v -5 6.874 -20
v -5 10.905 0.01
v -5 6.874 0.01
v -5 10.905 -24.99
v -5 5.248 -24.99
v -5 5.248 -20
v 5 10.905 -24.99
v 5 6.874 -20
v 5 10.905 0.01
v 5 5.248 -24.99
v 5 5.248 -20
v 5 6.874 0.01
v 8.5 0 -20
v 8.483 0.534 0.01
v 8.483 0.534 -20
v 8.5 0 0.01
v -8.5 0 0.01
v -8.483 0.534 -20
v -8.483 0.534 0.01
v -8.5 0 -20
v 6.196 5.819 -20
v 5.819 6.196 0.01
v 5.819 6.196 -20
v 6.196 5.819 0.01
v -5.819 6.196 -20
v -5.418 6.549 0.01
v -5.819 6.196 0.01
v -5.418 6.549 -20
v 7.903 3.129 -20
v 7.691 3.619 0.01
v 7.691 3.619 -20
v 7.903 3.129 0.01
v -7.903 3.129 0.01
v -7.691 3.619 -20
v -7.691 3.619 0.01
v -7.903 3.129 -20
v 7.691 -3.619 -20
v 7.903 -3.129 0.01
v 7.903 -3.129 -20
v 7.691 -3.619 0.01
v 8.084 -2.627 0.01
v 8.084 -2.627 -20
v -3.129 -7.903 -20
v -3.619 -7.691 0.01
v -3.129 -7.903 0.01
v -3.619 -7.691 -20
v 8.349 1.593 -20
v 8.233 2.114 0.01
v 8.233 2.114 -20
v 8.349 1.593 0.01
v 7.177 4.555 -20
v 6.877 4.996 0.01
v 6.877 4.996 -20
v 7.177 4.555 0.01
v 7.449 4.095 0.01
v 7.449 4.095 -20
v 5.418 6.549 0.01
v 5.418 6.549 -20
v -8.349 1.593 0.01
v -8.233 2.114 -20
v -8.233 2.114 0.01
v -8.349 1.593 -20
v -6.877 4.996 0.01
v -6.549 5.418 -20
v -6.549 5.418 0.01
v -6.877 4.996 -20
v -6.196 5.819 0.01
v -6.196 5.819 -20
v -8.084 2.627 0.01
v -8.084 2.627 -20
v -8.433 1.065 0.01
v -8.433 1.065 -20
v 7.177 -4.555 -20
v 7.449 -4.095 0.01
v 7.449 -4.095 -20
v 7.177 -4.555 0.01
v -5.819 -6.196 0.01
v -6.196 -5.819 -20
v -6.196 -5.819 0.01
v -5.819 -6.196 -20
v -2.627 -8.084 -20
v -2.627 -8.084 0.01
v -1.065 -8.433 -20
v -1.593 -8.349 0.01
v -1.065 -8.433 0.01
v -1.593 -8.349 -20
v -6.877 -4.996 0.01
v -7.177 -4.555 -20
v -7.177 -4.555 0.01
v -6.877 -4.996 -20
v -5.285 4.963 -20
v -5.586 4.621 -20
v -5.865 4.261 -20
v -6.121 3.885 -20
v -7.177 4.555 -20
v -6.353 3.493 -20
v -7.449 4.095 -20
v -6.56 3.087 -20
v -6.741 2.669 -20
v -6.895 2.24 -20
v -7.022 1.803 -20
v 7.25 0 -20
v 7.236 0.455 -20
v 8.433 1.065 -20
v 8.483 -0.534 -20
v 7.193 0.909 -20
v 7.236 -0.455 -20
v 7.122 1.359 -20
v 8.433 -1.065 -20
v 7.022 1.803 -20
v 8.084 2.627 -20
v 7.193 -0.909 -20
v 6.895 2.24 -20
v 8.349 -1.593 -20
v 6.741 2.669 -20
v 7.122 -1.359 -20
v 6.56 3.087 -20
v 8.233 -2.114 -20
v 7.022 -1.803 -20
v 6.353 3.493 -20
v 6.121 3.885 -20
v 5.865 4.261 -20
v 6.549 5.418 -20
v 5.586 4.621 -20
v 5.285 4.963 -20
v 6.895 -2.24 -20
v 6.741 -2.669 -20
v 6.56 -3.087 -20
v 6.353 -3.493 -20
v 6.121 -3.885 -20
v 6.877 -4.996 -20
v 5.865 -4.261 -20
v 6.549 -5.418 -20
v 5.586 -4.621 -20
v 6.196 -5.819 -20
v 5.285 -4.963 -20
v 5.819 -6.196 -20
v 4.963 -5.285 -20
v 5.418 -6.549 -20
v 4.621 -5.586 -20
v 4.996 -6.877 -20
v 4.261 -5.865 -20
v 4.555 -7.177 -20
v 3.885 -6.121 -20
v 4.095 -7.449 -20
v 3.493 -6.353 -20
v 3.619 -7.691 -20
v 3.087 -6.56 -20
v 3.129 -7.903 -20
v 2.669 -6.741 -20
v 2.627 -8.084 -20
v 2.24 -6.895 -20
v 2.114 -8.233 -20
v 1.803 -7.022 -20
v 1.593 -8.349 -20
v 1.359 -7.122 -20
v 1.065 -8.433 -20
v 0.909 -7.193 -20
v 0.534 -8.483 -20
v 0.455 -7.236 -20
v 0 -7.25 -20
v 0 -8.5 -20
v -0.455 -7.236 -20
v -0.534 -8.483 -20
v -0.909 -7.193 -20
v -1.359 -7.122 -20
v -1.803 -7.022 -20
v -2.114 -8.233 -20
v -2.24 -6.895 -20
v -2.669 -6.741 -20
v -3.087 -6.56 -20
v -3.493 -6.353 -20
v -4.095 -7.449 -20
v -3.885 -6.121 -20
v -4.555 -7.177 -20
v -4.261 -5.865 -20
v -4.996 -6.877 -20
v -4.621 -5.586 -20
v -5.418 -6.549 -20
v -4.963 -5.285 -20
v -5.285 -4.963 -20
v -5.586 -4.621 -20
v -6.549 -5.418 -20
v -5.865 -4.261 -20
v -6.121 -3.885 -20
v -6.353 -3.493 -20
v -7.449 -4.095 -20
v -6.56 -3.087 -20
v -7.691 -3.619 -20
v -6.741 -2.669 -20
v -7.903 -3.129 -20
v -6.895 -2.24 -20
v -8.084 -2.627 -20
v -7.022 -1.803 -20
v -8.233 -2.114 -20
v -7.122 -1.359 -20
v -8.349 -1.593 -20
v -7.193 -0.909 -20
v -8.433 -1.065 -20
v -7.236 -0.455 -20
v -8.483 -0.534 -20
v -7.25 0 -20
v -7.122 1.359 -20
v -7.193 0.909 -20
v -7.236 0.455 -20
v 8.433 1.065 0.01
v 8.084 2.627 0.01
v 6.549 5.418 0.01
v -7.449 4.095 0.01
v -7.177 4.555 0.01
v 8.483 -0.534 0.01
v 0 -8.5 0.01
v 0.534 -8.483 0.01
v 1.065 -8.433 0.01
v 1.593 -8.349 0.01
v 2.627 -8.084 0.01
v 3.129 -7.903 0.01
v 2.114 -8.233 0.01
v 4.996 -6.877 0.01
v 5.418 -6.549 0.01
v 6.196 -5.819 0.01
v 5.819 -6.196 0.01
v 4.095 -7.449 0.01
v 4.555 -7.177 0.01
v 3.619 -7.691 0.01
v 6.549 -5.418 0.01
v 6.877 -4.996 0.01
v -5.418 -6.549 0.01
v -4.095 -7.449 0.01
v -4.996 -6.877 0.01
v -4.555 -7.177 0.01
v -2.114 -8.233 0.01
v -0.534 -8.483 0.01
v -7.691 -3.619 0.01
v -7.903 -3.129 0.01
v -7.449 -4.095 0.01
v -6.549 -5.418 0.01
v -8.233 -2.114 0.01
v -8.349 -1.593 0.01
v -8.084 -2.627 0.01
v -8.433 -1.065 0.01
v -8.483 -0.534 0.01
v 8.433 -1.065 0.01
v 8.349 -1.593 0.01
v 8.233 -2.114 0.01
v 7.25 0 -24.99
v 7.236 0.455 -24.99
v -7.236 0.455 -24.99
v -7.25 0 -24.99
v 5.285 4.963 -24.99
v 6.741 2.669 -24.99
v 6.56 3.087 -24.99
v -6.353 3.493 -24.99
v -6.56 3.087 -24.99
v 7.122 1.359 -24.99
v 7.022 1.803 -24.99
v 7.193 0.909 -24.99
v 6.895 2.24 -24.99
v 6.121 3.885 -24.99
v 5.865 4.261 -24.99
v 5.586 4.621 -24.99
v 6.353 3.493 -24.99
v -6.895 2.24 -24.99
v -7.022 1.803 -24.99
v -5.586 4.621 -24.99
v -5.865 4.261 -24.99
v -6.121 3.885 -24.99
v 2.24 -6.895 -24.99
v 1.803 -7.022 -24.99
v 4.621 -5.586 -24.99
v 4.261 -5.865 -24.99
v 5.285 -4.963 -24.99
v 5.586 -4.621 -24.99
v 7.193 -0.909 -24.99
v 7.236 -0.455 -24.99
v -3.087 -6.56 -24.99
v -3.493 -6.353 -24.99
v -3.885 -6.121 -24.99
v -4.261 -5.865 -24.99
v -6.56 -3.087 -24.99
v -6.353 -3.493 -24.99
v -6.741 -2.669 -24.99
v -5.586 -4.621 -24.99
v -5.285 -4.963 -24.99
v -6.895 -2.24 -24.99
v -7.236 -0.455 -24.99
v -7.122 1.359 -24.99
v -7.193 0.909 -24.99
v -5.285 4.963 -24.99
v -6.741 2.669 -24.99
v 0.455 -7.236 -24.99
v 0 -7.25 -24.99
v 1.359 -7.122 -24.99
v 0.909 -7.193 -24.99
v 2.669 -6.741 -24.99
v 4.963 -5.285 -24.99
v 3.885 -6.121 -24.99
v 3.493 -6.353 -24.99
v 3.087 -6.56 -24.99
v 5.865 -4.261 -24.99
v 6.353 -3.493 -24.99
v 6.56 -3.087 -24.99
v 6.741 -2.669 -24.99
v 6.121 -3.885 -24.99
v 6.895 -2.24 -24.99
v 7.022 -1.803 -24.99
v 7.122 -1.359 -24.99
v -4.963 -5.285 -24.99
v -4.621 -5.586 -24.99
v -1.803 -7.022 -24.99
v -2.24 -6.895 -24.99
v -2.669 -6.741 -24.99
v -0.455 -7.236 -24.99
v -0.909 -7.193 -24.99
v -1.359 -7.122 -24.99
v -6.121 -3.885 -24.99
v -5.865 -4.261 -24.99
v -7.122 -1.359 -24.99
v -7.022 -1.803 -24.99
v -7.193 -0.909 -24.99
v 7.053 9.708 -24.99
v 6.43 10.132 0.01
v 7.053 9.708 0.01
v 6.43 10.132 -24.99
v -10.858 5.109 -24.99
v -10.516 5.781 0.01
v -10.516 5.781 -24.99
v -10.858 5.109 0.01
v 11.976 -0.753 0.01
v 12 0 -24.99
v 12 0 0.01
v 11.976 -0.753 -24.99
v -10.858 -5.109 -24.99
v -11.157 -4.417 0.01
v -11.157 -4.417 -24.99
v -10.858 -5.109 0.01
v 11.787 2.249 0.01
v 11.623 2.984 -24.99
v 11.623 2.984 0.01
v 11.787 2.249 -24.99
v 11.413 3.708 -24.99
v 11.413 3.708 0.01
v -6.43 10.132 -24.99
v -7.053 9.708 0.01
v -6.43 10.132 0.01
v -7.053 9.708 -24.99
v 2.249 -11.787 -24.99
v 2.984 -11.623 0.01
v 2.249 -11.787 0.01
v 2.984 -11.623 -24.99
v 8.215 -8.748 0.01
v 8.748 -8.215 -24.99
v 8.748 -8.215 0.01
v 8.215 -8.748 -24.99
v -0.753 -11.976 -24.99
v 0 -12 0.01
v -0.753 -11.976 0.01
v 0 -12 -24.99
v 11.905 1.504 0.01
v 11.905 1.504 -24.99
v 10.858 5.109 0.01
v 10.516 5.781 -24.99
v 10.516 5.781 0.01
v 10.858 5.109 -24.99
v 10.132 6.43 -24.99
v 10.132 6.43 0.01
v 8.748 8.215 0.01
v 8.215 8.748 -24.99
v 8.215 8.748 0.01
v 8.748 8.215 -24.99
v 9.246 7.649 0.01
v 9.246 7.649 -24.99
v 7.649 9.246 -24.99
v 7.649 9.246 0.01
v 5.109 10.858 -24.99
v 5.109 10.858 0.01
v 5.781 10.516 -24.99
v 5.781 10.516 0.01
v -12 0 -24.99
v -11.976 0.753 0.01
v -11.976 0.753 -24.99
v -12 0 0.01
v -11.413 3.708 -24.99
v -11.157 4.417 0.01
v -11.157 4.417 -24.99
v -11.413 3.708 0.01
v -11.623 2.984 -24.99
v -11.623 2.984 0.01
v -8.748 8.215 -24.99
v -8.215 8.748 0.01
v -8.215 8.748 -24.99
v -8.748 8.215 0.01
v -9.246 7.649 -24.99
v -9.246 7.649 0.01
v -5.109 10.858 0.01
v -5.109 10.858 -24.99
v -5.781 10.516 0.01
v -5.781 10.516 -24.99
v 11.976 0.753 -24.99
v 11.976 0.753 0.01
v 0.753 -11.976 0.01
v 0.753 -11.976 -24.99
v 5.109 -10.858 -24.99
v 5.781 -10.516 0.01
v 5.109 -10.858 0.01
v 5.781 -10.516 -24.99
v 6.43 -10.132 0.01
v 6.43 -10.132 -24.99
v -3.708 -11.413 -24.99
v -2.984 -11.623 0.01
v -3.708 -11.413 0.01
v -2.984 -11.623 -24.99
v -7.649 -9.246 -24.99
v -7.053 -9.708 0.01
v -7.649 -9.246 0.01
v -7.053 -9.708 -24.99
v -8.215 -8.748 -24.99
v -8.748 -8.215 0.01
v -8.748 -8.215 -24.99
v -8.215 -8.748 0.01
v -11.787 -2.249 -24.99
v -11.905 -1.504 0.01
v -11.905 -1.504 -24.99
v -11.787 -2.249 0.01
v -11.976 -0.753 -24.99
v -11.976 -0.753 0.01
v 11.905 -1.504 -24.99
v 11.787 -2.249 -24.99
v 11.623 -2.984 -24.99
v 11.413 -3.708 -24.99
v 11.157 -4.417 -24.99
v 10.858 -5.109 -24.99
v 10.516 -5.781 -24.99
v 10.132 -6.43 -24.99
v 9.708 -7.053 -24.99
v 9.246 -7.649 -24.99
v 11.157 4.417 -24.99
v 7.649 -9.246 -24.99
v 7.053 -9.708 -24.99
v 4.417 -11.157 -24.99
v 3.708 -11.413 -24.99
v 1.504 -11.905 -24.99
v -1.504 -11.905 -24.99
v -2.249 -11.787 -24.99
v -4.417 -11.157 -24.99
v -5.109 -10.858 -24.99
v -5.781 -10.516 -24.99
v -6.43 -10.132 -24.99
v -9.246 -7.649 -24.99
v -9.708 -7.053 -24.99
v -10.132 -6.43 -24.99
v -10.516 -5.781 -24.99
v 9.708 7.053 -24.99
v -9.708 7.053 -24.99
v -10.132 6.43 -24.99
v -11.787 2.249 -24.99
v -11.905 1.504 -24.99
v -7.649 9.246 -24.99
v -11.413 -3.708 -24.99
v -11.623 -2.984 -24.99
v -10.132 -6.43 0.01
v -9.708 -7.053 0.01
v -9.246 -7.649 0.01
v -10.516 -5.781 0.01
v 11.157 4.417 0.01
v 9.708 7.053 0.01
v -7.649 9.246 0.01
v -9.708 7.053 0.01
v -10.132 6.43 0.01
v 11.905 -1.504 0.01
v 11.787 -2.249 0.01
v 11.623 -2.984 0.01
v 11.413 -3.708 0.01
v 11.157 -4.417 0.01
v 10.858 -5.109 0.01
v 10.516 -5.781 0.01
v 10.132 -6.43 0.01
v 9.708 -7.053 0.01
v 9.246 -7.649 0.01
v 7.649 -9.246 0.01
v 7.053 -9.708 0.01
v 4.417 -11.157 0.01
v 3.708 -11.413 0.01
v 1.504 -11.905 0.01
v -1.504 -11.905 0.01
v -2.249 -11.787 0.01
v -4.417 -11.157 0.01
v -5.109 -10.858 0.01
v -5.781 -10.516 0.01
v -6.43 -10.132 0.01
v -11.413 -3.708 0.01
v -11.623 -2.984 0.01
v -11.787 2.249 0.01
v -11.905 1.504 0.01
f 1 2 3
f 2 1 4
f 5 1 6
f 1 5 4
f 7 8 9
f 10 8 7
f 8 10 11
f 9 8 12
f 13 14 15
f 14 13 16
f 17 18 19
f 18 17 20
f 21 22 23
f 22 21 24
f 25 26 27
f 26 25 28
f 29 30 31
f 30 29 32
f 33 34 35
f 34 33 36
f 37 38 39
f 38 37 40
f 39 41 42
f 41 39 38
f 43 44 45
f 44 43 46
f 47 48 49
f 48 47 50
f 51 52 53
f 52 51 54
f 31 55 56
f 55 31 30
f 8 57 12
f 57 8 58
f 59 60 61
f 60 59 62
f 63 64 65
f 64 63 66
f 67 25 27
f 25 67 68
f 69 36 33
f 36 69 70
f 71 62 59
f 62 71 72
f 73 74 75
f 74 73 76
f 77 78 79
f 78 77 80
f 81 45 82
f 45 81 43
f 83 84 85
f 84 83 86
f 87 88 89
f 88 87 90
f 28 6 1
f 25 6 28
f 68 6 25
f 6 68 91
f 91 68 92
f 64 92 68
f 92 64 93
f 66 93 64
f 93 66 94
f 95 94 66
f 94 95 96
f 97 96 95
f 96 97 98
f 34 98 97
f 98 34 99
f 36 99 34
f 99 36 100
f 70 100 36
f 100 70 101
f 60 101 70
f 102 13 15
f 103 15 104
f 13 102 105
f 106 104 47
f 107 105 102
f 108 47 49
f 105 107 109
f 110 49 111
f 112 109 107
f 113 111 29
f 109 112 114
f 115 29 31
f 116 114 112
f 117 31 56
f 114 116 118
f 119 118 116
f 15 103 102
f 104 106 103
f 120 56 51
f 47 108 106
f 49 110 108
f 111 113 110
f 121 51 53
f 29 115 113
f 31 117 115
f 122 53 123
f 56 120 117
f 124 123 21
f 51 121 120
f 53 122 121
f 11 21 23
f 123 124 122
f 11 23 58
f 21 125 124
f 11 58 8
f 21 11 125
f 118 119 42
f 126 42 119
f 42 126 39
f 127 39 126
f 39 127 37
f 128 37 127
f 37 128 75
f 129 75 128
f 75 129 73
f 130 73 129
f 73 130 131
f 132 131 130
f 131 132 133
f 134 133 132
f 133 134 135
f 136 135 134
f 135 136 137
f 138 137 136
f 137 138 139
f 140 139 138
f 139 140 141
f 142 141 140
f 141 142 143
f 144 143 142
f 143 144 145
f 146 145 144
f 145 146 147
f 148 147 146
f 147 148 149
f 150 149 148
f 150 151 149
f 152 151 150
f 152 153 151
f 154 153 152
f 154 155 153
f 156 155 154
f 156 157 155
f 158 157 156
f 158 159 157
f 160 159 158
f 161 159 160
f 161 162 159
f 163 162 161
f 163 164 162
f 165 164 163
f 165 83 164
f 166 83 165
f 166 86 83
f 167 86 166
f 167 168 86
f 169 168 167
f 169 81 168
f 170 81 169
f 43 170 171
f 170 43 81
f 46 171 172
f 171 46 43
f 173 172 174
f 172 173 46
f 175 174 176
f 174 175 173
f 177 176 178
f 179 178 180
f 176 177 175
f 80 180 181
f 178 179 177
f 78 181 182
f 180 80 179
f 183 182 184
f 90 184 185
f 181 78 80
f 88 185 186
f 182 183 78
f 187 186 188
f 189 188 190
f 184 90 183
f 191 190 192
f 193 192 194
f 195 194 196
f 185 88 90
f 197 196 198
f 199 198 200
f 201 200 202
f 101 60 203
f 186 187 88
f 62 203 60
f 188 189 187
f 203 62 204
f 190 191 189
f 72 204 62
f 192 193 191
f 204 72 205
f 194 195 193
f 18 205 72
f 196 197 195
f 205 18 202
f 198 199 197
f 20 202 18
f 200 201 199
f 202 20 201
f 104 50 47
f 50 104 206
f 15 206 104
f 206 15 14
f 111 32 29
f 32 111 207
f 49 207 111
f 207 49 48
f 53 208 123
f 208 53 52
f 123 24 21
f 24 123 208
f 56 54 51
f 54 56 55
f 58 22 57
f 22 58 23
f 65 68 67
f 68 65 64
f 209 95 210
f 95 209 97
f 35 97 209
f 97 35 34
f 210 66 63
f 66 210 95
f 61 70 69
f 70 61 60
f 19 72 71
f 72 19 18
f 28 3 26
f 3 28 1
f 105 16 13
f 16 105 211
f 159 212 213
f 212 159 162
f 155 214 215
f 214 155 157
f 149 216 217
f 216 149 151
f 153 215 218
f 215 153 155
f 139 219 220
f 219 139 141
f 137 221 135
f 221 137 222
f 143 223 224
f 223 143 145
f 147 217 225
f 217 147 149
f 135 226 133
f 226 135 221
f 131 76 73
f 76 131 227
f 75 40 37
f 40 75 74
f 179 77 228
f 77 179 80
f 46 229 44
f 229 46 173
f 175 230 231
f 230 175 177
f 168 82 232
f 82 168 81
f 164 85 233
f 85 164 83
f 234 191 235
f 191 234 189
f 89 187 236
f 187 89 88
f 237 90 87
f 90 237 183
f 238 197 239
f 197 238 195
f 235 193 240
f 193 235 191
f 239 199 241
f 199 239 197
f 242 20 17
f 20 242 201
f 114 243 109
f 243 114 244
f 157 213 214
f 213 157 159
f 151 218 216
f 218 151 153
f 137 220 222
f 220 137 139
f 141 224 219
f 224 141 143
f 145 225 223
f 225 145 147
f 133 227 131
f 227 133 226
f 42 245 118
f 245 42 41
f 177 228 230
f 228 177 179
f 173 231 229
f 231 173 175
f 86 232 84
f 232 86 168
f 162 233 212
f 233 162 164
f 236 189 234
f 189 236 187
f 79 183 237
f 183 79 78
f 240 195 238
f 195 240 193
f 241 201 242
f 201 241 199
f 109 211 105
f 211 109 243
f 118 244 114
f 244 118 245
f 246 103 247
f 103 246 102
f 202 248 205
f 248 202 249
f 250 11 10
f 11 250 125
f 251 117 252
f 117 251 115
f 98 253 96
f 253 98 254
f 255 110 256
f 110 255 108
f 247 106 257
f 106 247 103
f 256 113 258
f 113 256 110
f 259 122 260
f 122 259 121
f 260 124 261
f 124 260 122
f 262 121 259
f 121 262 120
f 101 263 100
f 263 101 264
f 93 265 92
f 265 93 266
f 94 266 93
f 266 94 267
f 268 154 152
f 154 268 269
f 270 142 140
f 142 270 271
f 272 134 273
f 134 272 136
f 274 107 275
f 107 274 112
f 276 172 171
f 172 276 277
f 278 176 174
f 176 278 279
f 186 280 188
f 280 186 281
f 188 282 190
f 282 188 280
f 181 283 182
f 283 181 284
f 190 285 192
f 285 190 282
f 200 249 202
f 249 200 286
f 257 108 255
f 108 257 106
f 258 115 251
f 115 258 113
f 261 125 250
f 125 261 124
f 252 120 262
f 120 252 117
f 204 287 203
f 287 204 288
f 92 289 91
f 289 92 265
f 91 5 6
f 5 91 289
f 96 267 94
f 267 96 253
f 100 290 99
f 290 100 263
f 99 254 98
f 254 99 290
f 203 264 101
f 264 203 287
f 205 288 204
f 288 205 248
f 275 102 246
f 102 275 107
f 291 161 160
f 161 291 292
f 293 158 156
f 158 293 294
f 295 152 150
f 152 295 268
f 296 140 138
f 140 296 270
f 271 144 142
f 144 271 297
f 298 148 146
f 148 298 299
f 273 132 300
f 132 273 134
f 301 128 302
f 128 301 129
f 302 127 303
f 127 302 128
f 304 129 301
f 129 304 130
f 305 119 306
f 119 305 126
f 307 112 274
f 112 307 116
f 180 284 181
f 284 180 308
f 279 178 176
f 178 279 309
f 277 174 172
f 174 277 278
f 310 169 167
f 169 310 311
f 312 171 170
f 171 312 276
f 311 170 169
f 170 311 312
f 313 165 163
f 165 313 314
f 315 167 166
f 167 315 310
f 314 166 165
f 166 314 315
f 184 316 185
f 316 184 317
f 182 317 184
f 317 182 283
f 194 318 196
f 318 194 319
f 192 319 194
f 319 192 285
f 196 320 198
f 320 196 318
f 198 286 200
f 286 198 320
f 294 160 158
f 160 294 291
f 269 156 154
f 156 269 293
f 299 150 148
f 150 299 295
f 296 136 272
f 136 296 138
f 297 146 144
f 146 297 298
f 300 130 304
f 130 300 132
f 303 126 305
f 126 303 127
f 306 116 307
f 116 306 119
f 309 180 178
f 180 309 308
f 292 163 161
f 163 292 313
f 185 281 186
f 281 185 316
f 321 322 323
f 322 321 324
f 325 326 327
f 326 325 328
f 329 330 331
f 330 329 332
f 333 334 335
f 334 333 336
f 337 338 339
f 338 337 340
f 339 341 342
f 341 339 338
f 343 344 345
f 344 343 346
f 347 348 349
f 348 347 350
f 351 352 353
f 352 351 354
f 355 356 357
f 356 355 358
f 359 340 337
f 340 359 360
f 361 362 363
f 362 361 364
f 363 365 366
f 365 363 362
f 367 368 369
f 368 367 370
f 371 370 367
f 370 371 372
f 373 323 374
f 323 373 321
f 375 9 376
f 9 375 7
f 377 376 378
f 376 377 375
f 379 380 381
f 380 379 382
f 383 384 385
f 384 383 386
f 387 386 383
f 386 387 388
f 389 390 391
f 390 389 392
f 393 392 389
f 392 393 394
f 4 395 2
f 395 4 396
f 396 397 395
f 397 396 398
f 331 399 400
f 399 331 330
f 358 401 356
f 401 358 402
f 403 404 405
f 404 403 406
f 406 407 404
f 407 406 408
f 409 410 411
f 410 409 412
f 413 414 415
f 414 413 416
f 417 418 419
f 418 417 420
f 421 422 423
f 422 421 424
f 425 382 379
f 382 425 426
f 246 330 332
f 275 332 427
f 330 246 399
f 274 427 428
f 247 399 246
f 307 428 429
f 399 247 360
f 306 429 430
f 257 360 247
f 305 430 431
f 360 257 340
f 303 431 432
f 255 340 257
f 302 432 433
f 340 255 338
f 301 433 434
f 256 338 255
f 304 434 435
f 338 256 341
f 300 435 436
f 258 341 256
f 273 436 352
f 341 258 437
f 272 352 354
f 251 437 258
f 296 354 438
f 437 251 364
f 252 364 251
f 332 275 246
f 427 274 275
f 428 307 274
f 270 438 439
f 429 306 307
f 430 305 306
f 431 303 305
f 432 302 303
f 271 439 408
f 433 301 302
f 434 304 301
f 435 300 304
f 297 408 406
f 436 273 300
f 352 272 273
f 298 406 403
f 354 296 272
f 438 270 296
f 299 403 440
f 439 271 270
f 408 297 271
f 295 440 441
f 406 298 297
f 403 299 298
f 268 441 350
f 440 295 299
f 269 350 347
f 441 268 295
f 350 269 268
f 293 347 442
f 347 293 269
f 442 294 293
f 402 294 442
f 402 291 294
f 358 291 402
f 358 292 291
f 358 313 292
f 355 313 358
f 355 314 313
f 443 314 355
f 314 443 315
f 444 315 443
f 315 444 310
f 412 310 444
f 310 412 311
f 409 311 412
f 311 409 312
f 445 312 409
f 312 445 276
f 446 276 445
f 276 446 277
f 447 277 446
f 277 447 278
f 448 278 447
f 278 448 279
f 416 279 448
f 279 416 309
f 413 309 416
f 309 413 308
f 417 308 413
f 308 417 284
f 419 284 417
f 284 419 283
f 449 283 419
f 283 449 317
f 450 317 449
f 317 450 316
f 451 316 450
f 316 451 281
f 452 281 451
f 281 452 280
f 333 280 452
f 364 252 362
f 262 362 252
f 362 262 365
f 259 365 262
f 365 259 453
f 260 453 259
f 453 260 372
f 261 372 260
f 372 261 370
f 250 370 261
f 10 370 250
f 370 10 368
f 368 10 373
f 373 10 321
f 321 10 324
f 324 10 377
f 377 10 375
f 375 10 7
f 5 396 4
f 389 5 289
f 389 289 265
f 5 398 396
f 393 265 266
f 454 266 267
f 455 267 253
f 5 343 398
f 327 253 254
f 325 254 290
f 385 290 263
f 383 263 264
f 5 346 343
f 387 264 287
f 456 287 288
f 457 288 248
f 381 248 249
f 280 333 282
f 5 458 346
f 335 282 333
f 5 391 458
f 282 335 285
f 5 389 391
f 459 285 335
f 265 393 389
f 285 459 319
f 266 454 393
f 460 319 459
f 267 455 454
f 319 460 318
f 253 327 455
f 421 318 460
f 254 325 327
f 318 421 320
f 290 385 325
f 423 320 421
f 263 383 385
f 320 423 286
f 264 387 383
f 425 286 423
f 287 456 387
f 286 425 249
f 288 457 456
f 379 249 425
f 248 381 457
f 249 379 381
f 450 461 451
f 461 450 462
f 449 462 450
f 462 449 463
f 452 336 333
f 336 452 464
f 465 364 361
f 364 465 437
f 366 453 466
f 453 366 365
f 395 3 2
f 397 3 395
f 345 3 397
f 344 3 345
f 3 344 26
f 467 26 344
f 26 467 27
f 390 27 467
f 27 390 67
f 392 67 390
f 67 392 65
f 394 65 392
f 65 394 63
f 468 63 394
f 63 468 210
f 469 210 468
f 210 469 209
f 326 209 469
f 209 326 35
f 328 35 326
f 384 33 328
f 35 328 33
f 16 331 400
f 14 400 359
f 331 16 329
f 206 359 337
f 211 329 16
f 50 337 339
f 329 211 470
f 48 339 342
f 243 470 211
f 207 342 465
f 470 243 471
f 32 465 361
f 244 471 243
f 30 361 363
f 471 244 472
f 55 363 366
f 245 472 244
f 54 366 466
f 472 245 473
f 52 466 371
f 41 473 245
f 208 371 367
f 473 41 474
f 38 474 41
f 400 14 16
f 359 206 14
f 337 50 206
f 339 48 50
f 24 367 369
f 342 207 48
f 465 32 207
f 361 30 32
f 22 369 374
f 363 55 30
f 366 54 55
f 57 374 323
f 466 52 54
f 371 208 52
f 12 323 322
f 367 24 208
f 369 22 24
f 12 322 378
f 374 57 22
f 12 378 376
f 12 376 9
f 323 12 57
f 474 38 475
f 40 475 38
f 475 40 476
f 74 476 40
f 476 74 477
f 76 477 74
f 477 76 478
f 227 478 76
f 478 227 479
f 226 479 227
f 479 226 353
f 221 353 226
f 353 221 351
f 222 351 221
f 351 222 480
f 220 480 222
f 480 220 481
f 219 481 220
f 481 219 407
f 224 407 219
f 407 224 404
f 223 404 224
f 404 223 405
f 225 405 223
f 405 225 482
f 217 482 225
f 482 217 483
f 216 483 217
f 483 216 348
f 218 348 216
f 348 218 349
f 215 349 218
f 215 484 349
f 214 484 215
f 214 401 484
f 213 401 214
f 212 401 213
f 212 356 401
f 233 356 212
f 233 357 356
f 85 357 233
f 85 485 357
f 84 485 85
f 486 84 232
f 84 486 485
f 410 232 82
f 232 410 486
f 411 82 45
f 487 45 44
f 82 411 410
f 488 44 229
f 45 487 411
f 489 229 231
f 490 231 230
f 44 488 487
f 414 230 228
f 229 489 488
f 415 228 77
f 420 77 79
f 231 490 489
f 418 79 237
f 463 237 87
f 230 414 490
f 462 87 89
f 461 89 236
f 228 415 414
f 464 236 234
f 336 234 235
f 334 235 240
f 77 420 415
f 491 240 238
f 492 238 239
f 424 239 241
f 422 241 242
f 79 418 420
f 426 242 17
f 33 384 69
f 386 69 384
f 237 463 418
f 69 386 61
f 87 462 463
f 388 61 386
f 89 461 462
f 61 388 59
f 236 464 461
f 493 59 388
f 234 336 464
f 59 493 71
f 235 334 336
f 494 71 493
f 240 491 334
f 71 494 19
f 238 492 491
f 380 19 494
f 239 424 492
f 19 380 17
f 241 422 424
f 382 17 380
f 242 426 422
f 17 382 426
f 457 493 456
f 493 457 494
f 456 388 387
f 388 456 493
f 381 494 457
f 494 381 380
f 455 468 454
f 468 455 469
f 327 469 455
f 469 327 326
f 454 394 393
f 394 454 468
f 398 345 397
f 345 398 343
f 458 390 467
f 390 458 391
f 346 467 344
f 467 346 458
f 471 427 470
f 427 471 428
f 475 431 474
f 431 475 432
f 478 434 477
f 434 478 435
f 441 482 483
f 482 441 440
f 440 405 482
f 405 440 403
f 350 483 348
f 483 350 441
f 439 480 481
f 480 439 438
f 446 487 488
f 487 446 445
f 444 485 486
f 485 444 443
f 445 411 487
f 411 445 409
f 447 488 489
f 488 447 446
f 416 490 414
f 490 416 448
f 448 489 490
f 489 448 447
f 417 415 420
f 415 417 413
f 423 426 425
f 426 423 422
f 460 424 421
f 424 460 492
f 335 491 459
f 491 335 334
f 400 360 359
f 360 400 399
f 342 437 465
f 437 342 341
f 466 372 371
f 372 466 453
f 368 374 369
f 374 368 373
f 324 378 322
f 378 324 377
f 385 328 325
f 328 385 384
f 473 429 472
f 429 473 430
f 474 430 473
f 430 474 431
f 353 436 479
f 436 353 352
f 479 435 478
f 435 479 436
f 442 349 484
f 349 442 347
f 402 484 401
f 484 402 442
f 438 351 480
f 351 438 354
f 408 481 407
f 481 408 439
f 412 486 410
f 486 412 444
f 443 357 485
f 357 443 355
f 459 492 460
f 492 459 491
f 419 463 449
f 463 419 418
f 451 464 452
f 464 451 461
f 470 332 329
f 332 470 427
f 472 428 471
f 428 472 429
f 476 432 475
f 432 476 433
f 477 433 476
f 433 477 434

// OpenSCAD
$fn=100;
e=.01;
difference(){
    translate([0,0,e-25/2]) cylinder(25,r=12,center=true);
    union(){
        translate([0,10,0])
        cube([10,10,50],center=true);
        cylinder(40,r=17/2,center=true);
        cylinder(50,r=14.5/2,center=true);
    }
}
